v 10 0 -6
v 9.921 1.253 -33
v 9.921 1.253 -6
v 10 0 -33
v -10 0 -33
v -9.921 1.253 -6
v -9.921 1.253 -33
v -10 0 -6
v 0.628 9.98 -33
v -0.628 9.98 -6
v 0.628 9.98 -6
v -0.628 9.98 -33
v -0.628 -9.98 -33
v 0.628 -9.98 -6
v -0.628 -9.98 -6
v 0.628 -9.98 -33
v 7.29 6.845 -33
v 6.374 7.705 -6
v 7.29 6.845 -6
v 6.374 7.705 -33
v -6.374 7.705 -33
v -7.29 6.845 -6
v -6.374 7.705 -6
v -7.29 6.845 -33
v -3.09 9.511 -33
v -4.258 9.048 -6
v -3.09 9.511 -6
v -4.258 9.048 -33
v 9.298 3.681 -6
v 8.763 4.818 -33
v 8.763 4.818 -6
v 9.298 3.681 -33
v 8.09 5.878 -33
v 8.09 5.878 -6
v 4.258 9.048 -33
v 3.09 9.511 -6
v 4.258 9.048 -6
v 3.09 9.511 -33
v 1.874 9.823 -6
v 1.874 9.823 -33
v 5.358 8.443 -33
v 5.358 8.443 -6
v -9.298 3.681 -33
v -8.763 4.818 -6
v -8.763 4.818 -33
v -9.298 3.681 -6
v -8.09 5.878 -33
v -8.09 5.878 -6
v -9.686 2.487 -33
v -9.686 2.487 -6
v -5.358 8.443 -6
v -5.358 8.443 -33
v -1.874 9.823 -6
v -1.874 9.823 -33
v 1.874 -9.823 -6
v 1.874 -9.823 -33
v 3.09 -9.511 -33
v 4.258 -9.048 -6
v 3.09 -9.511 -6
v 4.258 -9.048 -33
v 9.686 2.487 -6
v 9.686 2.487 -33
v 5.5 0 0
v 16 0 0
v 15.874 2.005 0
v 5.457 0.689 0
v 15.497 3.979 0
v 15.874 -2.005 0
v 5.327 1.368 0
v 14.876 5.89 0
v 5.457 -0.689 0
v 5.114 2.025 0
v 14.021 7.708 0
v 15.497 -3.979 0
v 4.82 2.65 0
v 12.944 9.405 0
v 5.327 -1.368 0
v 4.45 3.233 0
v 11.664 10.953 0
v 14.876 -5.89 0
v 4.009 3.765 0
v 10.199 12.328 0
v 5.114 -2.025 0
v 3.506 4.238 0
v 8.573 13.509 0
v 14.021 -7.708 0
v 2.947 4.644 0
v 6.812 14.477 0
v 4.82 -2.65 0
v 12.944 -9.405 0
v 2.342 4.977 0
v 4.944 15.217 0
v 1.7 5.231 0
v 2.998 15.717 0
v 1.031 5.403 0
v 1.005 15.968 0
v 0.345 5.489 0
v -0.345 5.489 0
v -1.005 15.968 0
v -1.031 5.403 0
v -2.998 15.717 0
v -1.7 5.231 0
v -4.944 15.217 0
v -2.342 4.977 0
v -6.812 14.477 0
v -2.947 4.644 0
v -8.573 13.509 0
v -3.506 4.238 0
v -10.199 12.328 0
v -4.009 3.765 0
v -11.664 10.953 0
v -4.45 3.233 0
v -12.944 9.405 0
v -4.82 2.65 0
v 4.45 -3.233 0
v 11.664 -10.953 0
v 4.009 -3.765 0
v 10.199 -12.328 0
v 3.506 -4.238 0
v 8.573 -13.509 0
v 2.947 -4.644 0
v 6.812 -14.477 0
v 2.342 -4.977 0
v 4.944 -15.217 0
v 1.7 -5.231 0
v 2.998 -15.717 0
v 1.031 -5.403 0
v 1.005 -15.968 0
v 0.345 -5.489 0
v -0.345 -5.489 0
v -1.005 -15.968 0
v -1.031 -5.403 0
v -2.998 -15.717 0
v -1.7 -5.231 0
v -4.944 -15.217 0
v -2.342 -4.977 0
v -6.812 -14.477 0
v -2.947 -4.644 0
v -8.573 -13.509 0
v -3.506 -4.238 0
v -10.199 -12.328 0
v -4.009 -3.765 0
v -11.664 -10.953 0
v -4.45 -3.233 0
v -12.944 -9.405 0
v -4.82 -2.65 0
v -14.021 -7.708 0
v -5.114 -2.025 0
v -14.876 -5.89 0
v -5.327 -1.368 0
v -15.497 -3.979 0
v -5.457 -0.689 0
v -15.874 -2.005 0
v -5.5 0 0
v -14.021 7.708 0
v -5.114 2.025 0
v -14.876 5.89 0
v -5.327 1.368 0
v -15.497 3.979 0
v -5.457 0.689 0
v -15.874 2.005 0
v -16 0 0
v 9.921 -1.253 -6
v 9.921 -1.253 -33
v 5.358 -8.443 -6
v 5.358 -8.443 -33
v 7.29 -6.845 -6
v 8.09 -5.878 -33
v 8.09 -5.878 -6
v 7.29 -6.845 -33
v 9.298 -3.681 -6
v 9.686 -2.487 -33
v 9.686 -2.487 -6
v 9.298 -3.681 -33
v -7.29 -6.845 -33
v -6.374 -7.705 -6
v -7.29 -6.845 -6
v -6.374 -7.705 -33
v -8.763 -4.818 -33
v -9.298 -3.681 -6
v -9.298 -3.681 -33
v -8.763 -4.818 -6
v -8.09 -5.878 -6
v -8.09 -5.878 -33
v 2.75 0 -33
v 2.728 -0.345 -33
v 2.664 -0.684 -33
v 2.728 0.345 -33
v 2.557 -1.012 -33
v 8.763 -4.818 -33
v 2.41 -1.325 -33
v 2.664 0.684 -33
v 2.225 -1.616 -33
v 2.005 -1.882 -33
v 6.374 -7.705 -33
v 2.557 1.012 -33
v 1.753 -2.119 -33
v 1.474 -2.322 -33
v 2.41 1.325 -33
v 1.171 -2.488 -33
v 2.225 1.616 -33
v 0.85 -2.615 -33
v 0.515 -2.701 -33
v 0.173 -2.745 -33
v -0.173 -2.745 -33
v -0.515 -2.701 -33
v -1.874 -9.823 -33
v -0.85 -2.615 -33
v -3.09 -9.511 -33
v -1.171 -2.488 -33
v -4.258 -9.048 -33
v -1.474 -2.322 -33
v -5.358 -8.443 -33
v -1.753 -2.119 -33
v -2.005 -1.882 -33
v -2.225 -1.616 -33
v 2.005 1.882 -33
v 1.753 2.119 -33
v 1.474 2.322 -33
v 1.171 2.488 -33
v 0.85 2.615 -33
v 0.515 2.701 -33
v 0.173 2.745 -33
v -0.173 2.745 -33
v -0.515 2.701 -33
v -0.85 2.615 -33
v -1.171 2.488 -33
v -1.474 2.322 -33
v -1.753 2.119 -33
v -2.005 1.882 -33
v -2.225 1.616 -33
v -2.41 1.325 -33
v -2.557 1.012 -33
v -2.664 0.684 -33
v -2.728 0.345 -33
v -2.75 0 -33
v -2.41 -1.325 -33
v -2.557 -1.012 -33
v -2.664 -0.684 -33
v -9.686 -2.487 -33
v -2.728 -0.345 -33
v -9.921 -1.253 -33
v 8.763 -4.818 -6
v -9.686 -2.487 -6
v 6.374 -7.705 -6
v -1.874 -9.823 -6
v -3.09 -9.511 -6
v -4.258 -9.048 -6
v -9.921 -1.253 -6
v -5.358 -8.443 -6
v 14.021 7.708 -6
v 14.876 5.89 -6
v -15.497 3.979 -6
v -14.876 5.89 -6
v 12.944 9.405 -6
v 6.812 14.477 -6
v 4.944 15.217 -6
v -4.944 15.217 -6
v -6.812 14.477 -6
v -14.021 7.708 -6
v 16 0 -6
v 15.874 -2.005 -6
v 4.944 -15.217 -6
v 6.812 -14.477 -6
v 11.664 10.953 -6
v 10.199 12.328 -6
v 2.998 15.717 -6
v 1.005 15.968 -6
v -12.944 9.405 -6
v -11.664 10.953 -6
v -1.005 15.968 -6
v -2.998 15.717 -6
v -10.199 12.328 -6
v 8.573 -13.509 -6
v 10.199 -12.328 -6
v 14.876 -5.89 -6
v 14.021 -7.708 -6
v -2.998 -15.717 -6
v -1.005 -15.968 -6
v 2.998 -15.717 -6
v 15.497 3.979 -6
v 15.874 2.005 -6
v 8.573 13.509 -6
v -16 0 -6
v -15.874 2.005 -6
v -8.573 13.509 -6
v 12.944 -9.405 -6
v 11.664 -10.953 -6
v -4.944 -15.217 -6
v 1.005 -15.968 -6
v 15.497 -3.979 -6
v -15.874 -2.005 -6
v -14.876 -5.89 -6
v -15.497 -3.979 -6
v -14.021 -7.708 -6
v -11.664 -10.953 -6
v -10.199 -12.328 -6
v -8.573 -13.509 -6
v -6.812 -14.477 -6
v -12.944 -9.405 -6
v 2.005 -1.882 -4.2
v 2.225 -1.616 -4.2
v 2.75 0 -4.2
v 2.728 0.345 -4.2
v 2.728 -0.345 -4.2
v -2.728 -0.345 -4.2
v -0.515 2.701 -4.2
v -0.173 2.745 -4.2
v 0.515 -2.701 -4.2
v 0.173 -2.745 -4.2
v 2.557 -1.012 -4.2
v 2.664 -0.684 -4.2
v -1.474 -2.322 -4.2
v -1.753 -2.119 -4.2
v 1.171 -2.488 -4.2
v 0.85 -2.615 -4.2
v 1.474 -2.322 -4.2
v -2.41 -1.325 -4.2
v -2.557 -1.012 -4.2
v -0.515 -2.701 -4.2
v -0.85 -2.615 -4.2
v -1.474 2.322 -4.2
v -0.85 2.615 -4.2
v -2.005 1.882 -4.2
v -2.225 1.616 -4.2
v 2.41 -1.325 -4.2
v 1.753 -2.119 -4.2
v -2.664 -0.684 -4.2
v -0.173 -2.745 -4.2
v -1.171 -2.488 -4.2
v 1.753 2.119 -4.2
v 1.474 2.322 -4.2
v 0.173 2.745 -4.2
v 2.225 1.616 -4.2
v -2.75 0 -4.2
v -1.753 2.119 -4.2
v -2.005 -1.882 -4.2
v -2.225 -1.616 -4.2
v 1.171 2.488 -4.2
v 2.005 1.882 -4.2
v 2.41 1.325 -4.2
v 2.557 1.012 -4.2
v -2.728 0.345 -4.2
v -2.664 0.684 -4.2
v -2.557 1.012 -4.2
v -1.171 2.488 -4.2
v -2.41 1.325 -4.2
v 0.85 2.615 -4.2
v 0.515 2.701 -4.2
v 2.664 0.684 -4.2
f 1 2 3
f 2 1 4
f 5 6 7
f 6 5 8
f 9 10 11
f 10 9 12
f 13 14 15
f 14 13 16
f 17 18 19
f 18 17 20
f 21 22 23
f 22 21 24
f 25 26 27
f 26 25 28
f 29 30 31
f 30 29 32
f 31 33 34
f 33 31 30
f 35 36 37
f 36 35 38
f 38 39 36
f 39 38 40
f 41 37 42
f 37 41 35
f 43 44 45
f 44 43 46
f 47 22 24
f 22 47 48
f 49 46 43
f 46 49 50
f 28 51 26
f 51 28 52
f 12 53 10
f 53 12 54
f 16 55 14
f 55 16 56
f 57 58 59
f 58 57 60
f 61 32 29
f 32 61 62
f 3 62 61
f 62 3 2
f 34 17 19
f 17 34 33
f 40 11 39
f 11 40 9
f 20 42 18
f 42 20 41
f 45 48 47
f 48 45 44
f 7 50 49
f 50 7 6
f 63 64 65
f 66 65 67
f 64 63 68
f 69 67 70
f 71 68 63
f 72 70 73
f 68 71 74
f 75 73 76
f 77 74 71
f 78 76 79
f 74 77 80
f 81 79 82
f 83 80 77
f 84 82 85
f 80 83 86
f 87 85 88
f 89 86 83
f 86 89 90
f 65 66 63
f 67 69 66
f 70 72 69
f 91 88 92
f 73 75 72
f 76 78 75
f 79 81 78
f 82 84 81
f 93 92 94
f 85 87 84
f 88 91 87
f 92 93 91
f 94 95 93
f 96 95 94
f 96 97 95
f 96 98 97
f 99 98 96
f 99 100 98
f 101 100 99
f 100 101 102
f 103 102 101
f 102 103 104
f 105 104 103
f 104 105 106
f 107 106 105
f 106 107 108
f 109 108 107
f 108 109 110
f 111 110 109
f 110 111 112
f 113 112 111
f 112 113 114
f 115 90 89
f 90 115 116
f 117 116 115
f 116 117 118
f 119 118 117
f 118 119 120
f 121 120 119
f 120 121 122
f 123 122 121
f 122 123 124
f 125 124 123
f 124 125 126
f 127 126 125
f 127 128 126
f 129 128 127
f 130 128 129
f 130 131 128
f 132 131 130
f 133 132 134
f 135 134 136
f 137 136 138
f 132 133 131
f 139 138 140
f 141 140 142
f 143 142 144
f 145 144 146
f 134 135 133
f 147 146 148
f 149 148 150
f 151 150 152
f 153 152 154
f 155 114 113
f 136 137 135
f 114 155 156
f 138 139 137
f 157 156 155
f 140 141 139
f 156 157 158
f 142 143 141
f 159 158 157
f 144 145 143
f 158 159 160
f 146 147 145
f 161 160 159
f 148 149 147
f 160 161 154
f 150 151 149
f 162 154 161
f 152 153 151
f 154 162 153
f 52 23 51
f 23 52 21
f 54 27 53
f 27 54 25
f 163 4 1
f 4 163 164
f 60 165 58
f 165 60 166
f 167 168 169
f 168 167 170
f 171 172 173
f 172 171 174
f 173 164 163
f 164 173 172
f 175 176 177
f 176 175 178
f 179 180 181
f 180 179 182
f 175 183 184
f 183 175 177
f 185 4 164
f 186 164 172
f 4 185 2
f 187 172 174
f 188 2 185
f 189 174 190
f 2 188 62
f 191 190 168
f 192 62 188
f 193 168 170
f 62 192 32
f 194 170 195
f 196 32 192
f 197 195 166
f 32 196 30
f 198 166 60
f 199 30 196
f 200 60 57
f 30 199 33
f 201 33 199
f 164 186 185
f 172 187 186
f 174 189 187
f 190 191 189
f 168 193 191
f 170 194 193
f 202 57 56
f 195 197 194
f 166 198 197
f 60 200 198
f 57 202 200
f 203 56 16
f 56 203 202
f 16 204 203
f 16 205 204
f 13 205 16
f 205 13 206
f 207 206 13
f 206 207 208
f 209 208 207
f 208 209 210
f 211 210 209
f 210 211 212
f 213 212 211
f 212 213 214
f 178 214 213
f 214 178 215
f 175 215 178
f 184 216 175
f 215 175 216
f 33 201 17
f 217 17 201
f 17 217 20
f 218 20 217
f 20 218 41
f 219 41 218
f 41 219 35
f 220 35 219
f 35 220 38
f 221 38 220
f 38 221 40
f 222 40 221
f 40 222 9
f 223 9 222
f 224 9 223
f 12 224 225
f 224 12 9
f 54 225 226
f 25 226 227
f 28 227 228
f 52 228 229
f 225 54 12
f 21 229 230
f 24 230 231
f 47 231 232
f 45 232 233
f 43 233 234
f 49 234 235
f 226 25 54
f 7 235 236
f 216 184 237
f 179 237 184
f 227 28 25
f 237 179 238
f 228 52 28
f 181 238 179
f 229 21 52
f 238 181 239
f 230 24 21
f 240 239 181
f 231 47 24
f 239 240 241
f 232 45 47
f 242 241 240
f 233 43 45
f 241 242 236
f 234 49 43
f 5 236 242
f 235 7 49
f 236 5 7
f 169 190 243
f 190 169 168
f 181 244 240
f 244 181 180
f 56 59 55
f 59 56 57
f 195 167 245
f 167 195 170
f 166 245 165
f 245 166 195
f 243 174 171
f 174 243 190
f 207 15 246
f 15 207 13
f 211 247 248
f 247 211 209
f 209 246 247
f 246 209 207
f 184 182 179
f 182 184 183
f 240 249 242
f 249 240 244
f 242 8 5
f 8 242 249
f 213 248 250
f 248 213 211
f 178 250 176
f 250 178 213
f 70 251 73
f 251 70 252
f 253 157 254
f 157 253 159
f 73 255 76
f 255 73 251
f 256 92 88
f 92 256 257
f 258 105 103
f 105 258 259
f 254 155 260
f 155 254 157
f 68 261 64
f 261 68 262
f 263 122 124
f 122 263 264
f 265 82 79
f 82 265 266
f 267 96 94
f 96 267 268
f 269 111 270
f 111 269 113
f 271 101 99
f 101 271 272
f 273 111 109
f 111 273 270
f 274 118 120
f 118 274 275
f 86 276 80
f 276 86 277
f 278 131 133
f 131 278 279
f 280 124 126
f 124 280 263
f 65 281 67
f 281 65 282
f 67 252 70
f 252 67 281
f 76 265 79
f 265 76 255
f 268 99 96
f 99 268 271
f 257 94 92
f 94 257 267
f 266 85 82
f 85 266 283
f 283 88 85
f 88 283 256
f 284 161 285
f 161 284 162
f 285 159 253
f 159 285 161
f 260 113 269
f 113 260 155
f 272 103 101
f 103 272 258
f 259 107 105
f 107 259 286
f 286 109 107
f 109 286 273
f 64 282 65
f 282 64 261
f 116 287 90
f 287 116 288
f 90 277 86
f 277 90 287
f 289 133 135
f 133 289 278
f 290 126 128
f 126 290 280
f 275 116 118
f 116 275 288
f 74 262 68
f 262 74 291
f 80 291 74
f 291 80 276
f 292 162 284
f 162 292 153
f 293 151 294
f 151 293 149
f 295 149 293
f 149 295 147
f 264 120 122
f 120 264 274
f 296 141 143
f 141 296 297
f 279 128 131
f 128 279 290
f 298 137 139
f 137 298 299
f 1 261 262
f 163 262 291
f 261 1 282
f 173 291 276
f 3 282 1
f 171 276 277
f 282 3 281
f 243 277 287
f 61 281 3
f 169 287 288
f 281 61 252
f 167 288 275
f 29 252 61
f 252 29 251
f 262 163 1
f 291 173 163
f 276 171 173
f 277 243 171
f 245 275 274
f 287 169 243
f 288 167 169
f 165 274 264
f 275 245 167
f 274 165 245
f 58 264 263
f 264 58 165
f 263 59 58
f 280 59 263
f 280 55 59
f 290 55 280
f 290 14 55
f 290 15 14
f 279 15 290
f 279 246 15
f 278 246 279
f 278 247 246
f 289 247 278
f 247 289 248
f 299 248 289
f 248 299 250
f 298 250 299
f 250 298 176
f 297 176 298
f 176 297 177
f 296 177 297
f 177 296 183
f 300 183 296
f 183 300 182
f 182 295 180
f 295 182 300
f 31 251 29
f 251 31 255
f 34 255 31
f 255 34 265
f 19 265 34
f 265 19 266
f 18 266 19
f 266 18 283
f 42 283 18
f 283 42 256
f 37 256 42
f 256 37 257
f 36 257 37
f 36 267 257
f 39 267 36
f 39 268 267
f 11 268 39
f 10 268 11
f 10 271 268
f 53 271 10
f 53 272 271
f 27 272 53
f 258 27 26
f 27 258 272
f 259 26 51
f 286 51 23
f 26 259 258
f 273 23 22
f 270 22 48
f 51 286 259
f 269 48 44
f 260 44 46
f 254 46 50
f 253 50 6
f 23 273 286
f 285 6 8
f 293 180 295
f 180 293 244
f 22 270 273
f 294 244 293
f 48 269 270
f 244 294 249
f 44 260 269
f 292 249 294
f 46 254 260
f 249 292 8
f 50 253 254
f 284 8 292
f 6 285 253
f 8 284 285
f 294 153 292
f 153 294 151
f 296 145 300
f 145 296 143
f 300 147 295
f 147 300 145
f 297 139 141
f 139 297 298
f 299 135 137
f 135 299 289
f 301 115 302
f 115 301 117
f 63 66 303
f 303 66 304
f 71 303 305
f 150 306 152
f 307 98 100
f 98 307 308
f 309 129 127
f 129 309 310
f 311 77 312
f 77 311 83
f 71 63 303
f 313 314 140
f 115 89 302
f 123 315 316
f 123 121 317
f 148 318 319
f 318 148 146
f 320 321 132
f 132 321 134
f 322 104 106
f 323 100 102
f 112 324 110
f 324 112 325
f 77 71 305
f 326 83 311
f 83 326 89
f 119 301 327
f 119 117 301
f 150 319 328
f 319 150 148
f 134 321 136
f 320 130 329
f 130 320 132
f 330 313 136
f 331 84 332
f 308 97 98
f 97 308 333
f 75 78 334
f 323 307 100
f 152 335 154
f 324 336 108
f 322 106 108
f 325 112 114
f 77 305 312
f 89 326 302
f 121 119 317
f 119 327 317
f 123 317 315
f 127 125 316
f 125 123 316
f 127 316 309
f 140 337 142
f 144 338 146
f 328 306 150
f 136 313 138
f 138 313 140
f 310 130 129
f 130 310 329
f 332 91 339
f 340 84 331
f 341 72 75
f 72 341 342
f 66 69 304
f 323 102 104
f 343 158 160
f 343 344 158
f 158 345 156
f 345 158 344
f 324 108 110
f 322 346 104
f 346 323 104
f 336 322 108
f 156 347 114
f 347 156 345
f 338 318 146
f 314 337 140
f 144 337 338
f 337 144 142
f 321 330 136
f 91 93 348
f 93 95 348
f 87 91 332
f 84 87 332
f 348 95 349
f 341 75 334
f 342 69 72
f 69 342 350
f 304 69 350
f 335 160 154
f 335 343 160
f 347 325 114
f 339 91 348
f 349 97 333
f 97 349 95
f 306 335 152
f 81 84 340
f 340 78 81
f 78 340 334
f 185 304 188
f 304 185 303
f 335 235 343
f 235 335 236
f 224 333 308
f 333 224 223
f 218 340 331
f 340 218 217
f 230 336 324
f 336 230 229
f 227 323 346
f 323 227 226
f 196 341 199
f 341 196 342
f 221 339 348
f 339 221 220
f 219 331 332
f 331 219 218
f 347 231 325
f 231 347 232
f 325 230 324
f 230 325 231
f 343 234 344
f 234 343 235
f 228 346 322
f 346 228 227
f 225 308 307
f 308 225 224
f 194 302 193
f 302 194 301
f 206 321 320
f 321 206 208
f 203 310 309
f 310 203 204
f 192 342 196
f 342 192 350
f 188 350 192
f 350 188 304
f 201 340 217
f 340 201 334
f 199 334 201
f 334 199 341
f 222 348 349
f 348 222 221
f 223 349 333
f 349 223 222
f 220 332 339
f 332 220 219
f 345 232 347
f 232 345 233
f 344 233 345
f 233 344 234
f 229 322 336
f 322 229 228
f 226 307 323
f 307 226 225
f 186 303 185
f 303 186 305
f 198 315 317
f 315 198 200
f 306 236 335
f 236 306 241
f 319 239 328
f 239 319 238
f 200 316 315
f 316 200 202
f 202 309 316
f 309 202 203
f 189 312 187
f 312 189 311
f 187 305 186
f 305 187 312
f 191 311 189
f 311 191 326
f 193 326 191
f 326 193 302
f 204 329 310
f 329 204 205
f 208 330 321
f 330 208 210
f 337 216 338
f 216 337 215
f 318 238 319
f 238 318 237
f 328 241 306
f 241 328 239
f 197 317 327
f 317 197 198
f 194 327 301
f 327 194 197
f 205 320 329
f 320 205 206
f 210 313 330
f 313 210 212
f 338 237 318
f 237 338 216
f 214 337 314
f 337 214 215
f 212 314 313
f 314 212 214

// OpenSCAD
$fn = 50;


difference() {
	union() {
		translate(v = [0, 0, -33.0000000000]) {
			cylinder(h = 33, r = 10.0000000000);
		}
		translate(v = [0, 0, -6.0000000000]) {
			cylinder(h = 6, r = 16.0000000000);
		}
	}
	union() {
		translate(v = [0, 0, 0]) {
			rotate(a = [0, 0, 0]) {
				difference() {
					union() {
						#translate(v = [0, 0, -33.0000000000]) {
							cylinder(h = 33, r = 2.2500000000);
						}
						#translate(v = [0, 0, -4.2000000000]) {
							cylinder(h = 4.2000000000, r = 10.0000000000, r1 = 2.7500000000, r2 = 5.5000000000);
						}
						#translate(v = [0, 0, -33.0000000000]) {
							cylinder(h = 33, r = 2.7500000000);
						}
						#translate(v = [0, 0, -33.0000000000]) {
							cylinder(h = 33, r = 2.2500000000);
						}
					}
					union();
				}
			}
		}
	}
}
